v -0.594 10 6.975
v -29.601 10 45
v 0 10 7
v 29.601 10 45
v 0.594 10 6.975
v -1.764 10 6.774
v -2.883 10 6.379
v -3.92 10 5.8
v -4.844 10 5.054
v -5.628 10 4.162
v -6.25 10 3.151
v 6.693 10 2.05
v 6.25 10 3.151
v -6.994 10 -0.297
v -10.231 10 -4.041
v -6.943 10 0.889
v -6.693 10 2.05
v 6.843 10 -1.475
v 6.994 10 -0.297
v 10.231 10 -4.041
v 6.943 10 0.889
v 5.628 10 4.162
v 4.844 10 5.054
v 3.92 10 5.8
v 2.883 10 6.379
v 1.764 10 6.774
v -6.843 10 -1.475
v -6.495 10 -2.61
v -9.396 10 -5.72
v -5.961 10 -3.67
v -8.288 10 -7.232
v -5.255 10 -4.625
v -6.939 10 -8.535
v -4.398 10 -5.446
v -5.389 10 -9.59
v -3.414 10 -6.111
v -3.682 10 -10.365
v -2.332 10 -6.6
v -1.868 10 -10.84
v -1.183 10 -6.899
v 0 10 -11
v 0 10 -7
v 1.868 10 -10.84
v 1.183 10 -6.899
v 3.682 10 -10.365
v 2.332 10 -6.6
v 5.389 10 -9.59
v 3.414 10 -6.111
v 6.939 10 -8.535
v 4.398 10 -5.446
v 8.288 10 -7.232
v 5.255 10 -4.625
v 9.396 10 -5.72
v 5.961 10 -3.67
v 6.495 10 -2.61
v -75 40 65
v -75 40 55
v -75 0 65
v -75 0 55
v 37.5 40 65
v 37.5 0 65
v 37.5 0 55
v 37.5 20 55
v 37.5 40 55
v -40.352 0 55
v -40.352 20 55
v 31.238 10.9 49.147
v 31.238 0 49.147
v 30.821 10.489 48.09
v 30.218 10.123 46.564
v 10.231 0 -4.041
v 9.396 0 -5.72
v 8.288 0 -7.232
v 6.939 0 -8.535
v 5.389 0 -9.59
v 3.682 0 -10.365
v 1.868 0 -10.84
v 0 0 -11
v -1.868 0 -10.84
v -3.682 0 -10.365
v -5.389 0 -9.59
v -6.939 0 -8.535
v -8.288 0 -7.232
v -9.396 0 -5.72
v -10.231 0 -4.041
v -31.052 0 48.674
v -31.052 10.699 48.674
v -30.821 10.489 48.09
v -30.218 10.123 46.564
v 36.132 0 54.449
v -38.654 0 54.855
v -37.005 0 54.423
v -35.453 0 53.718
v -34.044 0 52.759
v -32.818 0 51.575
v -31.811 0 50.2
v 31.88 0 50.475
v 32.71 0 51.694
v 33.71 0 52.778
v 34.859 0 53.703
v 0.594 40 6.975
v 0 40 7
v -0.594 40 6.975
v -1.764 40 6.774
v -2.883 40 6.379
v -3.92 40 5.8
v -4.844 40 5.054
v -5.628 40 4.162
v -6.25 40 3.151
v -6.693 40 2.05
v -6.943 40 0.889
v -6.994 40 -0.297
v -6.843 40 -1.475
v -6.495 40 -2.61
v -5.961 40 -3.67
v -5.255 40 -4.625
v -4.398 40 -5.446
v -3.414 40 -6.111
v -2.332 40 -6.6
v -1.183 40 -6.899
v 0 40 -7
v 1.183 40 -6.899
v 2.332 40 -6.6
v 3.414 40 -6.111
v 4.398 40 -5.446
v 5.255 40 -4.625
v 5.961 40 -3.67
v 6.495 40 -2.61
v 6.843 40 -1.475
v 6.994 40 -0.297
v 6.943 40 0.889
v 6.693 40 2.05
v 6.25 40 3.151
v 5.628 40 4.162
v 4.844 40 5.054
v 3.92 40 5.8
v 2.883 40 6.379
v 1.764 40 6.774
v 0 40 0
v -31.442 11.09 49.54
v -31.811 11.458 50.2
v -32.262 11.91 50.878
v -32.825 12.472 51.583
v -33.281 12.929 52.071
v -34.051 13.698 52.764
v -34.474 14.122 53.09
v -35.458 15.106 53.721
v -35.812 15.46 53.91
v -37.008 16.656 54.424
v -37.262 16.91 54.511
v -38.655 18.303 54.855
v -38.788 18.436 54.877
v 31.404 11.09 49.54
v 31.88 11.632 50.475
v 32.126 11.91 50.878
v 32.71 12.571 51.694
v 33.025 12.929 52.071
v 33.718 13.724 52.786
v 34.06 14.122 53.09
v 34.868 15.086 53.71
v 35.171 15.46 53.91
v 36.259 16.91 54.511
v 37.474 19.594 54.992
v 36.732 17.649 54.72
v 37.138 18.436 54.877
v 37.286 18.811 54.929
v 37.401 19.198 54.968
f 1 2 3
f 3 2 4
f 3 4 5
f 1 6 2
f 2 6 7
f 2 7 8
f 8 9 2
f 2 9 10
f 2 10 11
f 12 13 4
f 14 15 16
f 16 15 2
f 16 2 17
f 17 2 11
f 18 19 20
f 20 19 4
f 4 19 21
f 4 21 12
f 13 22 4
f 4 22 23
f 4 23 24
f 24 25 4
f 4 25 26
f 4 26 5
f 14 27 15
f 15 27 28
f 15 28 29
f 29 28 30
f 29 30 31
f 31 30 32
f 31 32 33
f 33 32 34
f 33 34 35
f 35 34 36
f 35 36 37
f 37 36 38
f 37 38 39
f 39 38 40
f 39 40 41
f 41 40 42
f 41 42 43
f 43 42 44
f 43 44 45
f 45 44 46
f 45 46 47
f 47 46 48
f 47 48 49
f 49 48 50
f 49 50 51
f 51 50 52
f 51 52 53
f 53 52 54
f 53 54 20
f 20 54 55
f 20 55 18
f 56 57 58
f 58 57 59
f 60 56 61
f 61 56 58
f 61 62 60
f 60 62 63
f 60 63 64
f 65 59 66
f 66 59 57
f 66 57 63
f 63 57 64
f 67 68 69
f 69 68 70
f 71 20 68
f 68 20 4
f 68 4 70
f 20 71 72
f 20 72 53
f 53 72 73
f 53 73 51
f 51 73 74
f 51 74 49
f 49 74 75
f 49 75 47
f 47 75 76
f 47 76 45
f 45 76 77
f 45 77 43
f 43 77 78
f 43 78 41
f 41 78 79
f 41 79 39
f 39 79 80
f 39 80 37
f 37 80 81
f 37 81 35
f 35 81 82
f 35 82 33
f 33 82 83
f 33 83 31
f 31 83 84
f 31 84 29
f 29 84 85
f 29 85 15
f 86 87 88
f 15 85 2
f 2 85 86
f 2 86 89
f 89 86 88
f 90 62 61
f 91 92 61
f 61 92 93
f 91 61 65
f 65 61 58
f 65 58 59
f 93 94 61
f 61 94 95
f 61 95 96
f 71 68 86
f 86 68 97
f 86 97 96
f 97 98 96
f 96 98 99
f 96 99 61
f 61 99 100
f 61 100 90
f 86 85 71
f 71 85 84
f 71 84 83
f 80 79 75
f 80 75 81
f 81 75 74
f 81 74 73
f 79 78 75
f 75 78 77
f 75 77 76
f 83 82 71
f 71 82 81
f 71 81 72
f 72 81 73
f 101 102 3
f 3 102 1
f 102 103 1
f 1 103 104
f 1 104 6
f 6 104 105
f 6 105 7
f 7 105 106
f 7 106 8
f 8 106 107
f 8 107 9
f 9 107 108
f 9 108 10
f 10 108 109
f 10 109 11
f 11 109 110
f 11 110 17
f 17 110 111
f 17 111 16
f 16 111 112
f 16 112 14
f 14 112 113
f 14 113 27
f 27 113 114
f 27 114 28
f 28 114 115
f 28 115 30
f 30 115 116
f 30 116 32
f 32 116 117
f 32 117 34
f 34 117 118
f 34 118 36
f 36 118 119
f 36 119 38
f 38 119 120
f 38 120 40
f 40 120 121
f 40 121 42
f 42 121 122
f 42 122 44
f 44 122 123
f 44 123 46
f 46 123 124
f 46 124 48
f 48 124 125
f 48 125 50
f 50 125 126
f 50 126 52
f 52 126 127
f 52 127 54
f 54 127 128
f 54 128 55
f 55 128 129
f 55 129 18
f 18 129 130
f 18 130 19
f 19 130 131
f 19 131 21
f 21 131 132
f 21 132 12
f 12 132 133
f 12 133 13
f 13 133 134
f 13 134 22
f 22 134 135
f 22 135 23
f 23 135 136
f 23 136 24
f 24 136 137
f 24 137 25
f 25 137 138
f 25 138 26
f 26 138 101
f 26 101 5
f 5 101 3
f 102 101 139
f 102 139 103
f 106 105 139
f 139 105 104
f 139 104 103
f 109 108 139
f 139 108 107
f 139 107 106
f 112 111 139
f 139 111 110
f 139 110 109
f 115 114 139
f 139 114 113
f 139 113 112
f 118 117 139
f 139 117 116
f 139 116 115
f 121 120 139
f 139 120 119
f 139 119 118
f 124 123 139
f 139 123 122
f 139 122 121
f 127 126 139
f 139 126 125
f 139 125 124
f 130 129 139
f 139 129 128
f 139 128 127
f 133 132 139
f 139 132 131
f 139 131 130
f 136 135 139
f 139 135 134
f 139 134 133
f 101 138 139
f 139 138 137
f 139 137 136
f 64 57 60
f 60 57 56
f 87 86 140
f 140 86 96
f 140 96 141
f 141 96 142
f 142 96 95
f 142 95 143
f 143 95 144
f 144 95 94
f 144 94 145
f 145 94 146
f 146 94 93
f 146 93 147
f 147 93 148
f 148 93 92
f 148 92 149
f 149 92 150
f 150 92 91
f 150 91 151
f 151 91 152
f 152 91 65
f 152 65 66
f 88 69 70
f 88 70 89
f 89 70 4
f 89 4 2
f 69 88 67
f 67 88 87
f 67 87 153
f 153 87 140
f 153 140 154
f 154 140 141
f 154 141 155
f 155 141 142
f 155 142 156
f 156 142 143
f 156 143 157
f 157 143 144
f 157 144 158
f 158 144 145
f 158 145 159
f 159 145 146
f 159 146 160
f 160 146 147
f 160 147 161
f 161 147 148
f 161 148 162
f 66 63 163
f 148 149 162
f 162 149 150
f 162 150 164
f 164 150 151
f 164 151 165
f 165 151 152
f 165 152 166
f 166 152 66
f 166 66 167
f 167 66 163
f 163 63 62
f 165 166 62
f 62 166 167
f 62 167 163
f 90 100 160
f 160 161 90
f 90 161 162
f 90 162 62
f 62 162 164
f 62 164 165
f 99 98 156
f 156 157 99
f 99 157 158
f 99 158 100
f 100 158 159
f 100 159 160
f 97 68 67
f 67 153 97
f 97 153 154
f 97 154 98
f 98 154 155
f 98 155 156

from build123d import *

# Parameters (mm, degrees)
SKETCH1_R           = 11
SKETCH1_R_2         = 7
BOSS_EXTRUDE1_DEPTH = 10
BOSS_EXTRUDE2_START = 10
SKETCH1_3_W         = 112.5
SKETCH1_3_H         = 10
SKETCH1_3_R         = 7
BOSS_EXTRUDE2_DEPTH = 30
FILLET1_R           = 10


with BuildPart() as part:
    # Sketch1 → Boss-Extrude1 (new body)
    # profile 1 of 6: a face of its own
    with BuildSketch(Plane(origin=(0, 0, 0), x_dir=(1, 0, 0), z_dir=(0, 1, 0))):
        Polygon((-37.5, -65), (-33.550296394, -55), (-75, -55), (-75, -65), align=None)
    # profile 2 of 6: a face of its own
    with BuildSketch(Plane(origin=(0, 0, 0), x_dir=(1, 0, 0), z_dir=(0, 1, 0))):
        Polygon((33.550296394, -55), (-33.550296394, -55), (-37.5, -65), (37.5, -65), align=None)
    # profile 3 of 6: a face of its own
    with BuildSketch(Plane(origin=(0, 0, 0), x_dir=(1, 0, 0), z_dir=(0, 1, 0))):
        Polygon((37.5, -55), (33.550296394, -55), (37.5, -65), align=None)
    # profile 4 of 6: a face of its own
    with BuildSketch(Plane(origin=(0, 0, 0), x_dir=(1, 0, 0), z_dir=(0, 1, 0))):
        with BuildLine():
            ThreePointArc((11, 0), (-2.056720175, -10.806012314), (-10.230891295, 4.040898824))
            Line((-10.230891295, 4.040898824), (-33.550296394, -55))
            Line((-33.550296394, -55), (33.550296394, -55))
            Line((33.550296394, -55), (10.230891295, 4.040898824))
            ThreePointArc((10.230891295, 4.040898824), (10.806012314, 2.056720175), (11, 0))
        make_face()
    # profile 5 of 6: a face of its own
    with BuildSketch(Plane(origin=(0, 0, 0), x_dir=(1, 0, 0), z_dir=(0, 1, 0))):
        Circle(SKETCH1_R)
        Circle(SKETCH1_R_2, mode=Mode.SUBTRACT)
    # profile 6 of 6: a face of its own
    with BuildSketch(Plane(origin=(0, 0, 0), x_dir=(1, 0, 0), z_dir=(0, 1, 0))):
        Circle(SKETCH1_R_2)
    extrude(amount=BOSS_EXTRUDE1_DEPTH)

    # Sketch1<3> → Boss-Extrude2 (add)
    with BuildSketch(Plane(origin=(0, 0, 0), x_dir=(1, 0, 0), z_dir=(0, 1, 0)).offset(BOSS_EXTRUDE2_START)):
        with Locations((-18.75, -60)):
            Rectangle(SKETCH1_3_W, SKETCH1_3_H)
        with Locations(Location((0, 0, 0), (0, 0, 270))):
            Circle(SKETCH1_3_R)
    extrude(amount=BOSS_EXTRUDE2_DEPTH)

    # Fillet1
    # the kernel refuses this fillet: 10 mm, written as the material it adds along each edge
    with BuildSketch(Plane(origin=(-33.550296394, 0, 55), x_dir=(-1, 0, 0), z_dir=(0, 1, 0))) as fillet1_piece_1:
        with BuildLine():
            CenterArc((FILLET1_R * 0.680204781295, -FILLET1_R), FILLET1_R, 90, 68.447449105)
            Line((-FILLET1_R * 0.249876245536, -FILLET1_R * 0.632645561443), (-FILLET1_R * 0.268477866073, -FILLET1_R * 0.625298472672))
            Line((-FILLET1_R * 0.268477866073, -FILLET1_R * 0.625298472672), (-FILLET1_R * 0.0136040956259, FILLET1_R * 0.02))
            Line((-FILLET1_R * 0.0136040956259, FILLET1_R * 0.02), (FILLET1_R * 0.680204781295, FILLET1_R * 0.02))
            Line((FILLET1_R * 0.680204781295, FILLET1_R * 0.02), (FILLET1_R * 0.680204781295, 0))
        make_face()
    extrude(amount=10)
    with BuildSketch(Plane(origin=(33.550296394, 0, 55), x_dir=(1, 0, 0), z_dir=(0, 1, 0))) as fillet1_piece_2:
        with BuildLine():
            CenterArc((6.988874819, 9.526984745), FILLET1_R, 201.552550895, 50.754421911)
            Line((-2.31193545, 5.85344036), (-2.497951655, 5.779969472))
            Line((-2.497951655, 5.779969472), (-0.186016205, -0.073470888))
            Line((-0.186016205, -0.073470888), (0, -0.2))
            ThreePointArc((0, -0.2), (1.974851803, -0.2), (3.888920182, -0.190539695))
            Line((3.888920182, -0.190539695), (3.949703606, 0))
        make_face()
    extrude(amount=10)
    with BuildSketch(Plane(origin=(58.550296394, 10, 55), x_dir=(0, 1, 0), z_dir=(-1, 0, 0))) as fillet1_piece_3_section:
        with BuildLine():
            CenterArc((FILLET1_R, FILLET1_R), FILLET1_R, 180, 90)
            Line((0, FILLET1_R), (-FILLET1_R * 0.02, FILLET1_R))
            Line((-FILLET1_R * 0.02, FILLET1_R), (-FILLET1_R * 0.02, -FILLET1_R * 0.02))
            Line((-FILLET1_R * 0.02, -FILLET1_R * 0.02), (FILLET1_R, -FILLET1_R * 0.02))
            Line((FILLET1_R, -FILLET1_R * 0.02), (FILLET1_R, 0))
        make_face()
    fillet1_piece_3 = extrude(amount=117.100592788, mode=Mode.PRIVATE)
    fillet1_piece_3 = split(fillet1_piece_3, bisect_by=Plane(origin=(28.268391296, 12.297159596, 41.627084904), z_dir=(-0.9300810268318512, 0, 0.3673544385568373)), keep=Keep.TOP, mode=Mode.PRIVATE)
    fillet1_piece_3 = split(fillet1_piece_3, bisect_by=Plane(origin=(-28.268391296, 12.297159596, 41.627084904), z_dir=(0.9300810268318513, 0, 0.36735443855683725)), keep=Keep.TOP, mode=Mode.PRIVATE)
    add(fillet1_piece_3)
    with BuildSketch(Plane(origin=(-33.550296394, 0, 55), x_dir=(-1, 0, 0), z_dir=(0, 1, 0))) as fillet1_piece_4a_section:
        with BuildLine():
            CenterArc((FILLET1_R * 0.680204781295, -FILLET1_R), FILLET1_R, 90, 68.447449105)
            Line((-FILLET1_R * 0.249876245536, -FILLET1_R * 0.632645561443), (-FILLET1_R * 0.268477866073, -FILLET1_R * 0.625298472672))
            Line((-FILLET1_R * 0.268477866073, -FILLET1_R * 0.625298472672), (-FILLET1_R * 0.0136040956259, FILLET1_R * 0.02))
            Line((-FILLET1_R * 0.0136040956259, FILLET1_R * 0.02), (FILLET1_R * 0.680204781295, FILLET1_R * 0.02))
            Line((FILLET1_R * 0.680204781295, FILLET1_R * 0.02), (FILLET1_R * 0.680204781295, 0))
        make_face()
    fillet1_piece_4a = extrude(amount=27.005119532, mode=Mode.PRIVATE)
    fillet1_piece_4a = split(fillet1_piece_4a, bisect_by=Plane(origin=(-34.492064323, 10, 53.615464114), z_dir=(0, 1, 0)), keep=Keep.TOP, mode=Mode.PRIVATE)
    with BuildSketch(Plane(origin=(58.550296394, 10, 55), x_dir=(0, 1, 0), z_dir=(-1, 0, 0))) as fillet1_piece_4b_section:
        with BuildLine():
            CenterArc((FILLET1_R, FILLET1_R), FILLET1_R, 180, 90)
            Line((0, FILLET1_R), (-FILLET1_R * 0.02, FILLET1_R))
            Line((-FILLET1_R * 0.02, FILLET1_R), (-FILLET1_R * 0.02, -FILLET1_R * 0.02))
            Line((-FILLET1_R * 0.02, -FILLET1_R * 0.02), (FILLET1_R, -FILLET1_R * 0.02))
            Line((FILLET1_R, -FILLET1_R * 0.02), (FILLET1_R, 0))
        make_face()
    fillet1_piece_4b = extrude(amount=117.100592788, mode=Mode.PRIVATE)
    fillet1_piece_4b = split(fillet1_piece_4b, bisect_by=Plane(origin=(-34.377193324, 12.222070762, 57.093567044), z_dir=(-0.9300810268318513, 0, -0.36735443855683725)), keep=Keep.TOP, mode=Mode.PRIVATE)
    fillet1_piece_4 = fillet1_piece_4a & fillet1_piece_4b
    add(fillet1_piece_4)
    with BuildSketch(Plane(origin=(58.550296394, 10, 55), x_dir=(0, 1, 0), z_dir=(-1, 0, 0))) as fillet1_piece_5a_section:
        with BuildLine():
            CenterArc((FILLET1_R, FILLET1_R), FILLET1_R, 180, 90)
            Line((0, FILLET1_R), (-FILLET1_R * 0.02, FILLET1_R))
            Line((-FILLET1_R * 0.02, FILLET1_R), (-FILLET1_R * 0.02, -FILLET1_R * 0.02))
            Line((-FILLET1_R * 0.02, -FILLET1_R * 0.02), (FILLET1_R, -FILLET1_R * 0.02))
            Line((FILLET1_R, -FILLET1_R * 0.02), (FILLET1_R, 0))
        make_face()
    fillet1_piece_5a = extrude(amount=117.100592788, mode=Mode.PRIVATE)
    fillet1_piece_5a = split(fillet1_piece_5a, bisect_by=Plane(origin=(37.5, 12.040069704, 52.357079342), z_dir=(-1, 0, 0)), keep=Keep.TOP, mode=Mode.PRIVATE)
    fillet1_piece_5a = split(fillet1_piece_5a, bisect_by=Plane(origin=(32.843361018, 12.040069704, 53.210155884), z_dir=(0.9300810268318512, 0, -0.3673544385568373)), keep=Keep.TOP, mode=Mode.PRIVATE)
    with BuildSketch(Plane(origin=(33.550296394, 0, 55), x_dir=(1, 0, 0), z_dir=(0, 1, 0))) as fillet1_piece_5b_section:
        with BuildLine():
            CenterArc((6.988874819, 9.526984745), FILLET1_R, 201.552550895, 50.754421911)
            Line((-2.31193545, 5.85344036), (-2.497951655, 5.779969472))
            Line((-2.497951655, 5.779969472), (-0.186016205, -0.073470888))
            Line((-0.186016205, -0.073470888), (0, -0.2))
            ThreePointArc((0, -0.2), (1.974851803, -0.2), (3.888920182, -0.190539695))
            Line((3.888920182, -0.190539695), (3.949703606, 0))
        make_face()
    fillet1_piece_5b = extrude(amount=25.733683924, mode=Mode.PRIVATE)
    fillet1_piece_5b = split(fillet1_piece_5b, bisect_by=Plane(origin=(33.943390061, 10, 53.584203188), z_dir=(0, 1, 0)), keep=Keep.TOP, mode=Mode.PRIVATE)
    fillet1_piece_5 = fillet1_piece_5a & fillet1_piece_5b
    add(fillet1_piece_5)


solid = part.part
